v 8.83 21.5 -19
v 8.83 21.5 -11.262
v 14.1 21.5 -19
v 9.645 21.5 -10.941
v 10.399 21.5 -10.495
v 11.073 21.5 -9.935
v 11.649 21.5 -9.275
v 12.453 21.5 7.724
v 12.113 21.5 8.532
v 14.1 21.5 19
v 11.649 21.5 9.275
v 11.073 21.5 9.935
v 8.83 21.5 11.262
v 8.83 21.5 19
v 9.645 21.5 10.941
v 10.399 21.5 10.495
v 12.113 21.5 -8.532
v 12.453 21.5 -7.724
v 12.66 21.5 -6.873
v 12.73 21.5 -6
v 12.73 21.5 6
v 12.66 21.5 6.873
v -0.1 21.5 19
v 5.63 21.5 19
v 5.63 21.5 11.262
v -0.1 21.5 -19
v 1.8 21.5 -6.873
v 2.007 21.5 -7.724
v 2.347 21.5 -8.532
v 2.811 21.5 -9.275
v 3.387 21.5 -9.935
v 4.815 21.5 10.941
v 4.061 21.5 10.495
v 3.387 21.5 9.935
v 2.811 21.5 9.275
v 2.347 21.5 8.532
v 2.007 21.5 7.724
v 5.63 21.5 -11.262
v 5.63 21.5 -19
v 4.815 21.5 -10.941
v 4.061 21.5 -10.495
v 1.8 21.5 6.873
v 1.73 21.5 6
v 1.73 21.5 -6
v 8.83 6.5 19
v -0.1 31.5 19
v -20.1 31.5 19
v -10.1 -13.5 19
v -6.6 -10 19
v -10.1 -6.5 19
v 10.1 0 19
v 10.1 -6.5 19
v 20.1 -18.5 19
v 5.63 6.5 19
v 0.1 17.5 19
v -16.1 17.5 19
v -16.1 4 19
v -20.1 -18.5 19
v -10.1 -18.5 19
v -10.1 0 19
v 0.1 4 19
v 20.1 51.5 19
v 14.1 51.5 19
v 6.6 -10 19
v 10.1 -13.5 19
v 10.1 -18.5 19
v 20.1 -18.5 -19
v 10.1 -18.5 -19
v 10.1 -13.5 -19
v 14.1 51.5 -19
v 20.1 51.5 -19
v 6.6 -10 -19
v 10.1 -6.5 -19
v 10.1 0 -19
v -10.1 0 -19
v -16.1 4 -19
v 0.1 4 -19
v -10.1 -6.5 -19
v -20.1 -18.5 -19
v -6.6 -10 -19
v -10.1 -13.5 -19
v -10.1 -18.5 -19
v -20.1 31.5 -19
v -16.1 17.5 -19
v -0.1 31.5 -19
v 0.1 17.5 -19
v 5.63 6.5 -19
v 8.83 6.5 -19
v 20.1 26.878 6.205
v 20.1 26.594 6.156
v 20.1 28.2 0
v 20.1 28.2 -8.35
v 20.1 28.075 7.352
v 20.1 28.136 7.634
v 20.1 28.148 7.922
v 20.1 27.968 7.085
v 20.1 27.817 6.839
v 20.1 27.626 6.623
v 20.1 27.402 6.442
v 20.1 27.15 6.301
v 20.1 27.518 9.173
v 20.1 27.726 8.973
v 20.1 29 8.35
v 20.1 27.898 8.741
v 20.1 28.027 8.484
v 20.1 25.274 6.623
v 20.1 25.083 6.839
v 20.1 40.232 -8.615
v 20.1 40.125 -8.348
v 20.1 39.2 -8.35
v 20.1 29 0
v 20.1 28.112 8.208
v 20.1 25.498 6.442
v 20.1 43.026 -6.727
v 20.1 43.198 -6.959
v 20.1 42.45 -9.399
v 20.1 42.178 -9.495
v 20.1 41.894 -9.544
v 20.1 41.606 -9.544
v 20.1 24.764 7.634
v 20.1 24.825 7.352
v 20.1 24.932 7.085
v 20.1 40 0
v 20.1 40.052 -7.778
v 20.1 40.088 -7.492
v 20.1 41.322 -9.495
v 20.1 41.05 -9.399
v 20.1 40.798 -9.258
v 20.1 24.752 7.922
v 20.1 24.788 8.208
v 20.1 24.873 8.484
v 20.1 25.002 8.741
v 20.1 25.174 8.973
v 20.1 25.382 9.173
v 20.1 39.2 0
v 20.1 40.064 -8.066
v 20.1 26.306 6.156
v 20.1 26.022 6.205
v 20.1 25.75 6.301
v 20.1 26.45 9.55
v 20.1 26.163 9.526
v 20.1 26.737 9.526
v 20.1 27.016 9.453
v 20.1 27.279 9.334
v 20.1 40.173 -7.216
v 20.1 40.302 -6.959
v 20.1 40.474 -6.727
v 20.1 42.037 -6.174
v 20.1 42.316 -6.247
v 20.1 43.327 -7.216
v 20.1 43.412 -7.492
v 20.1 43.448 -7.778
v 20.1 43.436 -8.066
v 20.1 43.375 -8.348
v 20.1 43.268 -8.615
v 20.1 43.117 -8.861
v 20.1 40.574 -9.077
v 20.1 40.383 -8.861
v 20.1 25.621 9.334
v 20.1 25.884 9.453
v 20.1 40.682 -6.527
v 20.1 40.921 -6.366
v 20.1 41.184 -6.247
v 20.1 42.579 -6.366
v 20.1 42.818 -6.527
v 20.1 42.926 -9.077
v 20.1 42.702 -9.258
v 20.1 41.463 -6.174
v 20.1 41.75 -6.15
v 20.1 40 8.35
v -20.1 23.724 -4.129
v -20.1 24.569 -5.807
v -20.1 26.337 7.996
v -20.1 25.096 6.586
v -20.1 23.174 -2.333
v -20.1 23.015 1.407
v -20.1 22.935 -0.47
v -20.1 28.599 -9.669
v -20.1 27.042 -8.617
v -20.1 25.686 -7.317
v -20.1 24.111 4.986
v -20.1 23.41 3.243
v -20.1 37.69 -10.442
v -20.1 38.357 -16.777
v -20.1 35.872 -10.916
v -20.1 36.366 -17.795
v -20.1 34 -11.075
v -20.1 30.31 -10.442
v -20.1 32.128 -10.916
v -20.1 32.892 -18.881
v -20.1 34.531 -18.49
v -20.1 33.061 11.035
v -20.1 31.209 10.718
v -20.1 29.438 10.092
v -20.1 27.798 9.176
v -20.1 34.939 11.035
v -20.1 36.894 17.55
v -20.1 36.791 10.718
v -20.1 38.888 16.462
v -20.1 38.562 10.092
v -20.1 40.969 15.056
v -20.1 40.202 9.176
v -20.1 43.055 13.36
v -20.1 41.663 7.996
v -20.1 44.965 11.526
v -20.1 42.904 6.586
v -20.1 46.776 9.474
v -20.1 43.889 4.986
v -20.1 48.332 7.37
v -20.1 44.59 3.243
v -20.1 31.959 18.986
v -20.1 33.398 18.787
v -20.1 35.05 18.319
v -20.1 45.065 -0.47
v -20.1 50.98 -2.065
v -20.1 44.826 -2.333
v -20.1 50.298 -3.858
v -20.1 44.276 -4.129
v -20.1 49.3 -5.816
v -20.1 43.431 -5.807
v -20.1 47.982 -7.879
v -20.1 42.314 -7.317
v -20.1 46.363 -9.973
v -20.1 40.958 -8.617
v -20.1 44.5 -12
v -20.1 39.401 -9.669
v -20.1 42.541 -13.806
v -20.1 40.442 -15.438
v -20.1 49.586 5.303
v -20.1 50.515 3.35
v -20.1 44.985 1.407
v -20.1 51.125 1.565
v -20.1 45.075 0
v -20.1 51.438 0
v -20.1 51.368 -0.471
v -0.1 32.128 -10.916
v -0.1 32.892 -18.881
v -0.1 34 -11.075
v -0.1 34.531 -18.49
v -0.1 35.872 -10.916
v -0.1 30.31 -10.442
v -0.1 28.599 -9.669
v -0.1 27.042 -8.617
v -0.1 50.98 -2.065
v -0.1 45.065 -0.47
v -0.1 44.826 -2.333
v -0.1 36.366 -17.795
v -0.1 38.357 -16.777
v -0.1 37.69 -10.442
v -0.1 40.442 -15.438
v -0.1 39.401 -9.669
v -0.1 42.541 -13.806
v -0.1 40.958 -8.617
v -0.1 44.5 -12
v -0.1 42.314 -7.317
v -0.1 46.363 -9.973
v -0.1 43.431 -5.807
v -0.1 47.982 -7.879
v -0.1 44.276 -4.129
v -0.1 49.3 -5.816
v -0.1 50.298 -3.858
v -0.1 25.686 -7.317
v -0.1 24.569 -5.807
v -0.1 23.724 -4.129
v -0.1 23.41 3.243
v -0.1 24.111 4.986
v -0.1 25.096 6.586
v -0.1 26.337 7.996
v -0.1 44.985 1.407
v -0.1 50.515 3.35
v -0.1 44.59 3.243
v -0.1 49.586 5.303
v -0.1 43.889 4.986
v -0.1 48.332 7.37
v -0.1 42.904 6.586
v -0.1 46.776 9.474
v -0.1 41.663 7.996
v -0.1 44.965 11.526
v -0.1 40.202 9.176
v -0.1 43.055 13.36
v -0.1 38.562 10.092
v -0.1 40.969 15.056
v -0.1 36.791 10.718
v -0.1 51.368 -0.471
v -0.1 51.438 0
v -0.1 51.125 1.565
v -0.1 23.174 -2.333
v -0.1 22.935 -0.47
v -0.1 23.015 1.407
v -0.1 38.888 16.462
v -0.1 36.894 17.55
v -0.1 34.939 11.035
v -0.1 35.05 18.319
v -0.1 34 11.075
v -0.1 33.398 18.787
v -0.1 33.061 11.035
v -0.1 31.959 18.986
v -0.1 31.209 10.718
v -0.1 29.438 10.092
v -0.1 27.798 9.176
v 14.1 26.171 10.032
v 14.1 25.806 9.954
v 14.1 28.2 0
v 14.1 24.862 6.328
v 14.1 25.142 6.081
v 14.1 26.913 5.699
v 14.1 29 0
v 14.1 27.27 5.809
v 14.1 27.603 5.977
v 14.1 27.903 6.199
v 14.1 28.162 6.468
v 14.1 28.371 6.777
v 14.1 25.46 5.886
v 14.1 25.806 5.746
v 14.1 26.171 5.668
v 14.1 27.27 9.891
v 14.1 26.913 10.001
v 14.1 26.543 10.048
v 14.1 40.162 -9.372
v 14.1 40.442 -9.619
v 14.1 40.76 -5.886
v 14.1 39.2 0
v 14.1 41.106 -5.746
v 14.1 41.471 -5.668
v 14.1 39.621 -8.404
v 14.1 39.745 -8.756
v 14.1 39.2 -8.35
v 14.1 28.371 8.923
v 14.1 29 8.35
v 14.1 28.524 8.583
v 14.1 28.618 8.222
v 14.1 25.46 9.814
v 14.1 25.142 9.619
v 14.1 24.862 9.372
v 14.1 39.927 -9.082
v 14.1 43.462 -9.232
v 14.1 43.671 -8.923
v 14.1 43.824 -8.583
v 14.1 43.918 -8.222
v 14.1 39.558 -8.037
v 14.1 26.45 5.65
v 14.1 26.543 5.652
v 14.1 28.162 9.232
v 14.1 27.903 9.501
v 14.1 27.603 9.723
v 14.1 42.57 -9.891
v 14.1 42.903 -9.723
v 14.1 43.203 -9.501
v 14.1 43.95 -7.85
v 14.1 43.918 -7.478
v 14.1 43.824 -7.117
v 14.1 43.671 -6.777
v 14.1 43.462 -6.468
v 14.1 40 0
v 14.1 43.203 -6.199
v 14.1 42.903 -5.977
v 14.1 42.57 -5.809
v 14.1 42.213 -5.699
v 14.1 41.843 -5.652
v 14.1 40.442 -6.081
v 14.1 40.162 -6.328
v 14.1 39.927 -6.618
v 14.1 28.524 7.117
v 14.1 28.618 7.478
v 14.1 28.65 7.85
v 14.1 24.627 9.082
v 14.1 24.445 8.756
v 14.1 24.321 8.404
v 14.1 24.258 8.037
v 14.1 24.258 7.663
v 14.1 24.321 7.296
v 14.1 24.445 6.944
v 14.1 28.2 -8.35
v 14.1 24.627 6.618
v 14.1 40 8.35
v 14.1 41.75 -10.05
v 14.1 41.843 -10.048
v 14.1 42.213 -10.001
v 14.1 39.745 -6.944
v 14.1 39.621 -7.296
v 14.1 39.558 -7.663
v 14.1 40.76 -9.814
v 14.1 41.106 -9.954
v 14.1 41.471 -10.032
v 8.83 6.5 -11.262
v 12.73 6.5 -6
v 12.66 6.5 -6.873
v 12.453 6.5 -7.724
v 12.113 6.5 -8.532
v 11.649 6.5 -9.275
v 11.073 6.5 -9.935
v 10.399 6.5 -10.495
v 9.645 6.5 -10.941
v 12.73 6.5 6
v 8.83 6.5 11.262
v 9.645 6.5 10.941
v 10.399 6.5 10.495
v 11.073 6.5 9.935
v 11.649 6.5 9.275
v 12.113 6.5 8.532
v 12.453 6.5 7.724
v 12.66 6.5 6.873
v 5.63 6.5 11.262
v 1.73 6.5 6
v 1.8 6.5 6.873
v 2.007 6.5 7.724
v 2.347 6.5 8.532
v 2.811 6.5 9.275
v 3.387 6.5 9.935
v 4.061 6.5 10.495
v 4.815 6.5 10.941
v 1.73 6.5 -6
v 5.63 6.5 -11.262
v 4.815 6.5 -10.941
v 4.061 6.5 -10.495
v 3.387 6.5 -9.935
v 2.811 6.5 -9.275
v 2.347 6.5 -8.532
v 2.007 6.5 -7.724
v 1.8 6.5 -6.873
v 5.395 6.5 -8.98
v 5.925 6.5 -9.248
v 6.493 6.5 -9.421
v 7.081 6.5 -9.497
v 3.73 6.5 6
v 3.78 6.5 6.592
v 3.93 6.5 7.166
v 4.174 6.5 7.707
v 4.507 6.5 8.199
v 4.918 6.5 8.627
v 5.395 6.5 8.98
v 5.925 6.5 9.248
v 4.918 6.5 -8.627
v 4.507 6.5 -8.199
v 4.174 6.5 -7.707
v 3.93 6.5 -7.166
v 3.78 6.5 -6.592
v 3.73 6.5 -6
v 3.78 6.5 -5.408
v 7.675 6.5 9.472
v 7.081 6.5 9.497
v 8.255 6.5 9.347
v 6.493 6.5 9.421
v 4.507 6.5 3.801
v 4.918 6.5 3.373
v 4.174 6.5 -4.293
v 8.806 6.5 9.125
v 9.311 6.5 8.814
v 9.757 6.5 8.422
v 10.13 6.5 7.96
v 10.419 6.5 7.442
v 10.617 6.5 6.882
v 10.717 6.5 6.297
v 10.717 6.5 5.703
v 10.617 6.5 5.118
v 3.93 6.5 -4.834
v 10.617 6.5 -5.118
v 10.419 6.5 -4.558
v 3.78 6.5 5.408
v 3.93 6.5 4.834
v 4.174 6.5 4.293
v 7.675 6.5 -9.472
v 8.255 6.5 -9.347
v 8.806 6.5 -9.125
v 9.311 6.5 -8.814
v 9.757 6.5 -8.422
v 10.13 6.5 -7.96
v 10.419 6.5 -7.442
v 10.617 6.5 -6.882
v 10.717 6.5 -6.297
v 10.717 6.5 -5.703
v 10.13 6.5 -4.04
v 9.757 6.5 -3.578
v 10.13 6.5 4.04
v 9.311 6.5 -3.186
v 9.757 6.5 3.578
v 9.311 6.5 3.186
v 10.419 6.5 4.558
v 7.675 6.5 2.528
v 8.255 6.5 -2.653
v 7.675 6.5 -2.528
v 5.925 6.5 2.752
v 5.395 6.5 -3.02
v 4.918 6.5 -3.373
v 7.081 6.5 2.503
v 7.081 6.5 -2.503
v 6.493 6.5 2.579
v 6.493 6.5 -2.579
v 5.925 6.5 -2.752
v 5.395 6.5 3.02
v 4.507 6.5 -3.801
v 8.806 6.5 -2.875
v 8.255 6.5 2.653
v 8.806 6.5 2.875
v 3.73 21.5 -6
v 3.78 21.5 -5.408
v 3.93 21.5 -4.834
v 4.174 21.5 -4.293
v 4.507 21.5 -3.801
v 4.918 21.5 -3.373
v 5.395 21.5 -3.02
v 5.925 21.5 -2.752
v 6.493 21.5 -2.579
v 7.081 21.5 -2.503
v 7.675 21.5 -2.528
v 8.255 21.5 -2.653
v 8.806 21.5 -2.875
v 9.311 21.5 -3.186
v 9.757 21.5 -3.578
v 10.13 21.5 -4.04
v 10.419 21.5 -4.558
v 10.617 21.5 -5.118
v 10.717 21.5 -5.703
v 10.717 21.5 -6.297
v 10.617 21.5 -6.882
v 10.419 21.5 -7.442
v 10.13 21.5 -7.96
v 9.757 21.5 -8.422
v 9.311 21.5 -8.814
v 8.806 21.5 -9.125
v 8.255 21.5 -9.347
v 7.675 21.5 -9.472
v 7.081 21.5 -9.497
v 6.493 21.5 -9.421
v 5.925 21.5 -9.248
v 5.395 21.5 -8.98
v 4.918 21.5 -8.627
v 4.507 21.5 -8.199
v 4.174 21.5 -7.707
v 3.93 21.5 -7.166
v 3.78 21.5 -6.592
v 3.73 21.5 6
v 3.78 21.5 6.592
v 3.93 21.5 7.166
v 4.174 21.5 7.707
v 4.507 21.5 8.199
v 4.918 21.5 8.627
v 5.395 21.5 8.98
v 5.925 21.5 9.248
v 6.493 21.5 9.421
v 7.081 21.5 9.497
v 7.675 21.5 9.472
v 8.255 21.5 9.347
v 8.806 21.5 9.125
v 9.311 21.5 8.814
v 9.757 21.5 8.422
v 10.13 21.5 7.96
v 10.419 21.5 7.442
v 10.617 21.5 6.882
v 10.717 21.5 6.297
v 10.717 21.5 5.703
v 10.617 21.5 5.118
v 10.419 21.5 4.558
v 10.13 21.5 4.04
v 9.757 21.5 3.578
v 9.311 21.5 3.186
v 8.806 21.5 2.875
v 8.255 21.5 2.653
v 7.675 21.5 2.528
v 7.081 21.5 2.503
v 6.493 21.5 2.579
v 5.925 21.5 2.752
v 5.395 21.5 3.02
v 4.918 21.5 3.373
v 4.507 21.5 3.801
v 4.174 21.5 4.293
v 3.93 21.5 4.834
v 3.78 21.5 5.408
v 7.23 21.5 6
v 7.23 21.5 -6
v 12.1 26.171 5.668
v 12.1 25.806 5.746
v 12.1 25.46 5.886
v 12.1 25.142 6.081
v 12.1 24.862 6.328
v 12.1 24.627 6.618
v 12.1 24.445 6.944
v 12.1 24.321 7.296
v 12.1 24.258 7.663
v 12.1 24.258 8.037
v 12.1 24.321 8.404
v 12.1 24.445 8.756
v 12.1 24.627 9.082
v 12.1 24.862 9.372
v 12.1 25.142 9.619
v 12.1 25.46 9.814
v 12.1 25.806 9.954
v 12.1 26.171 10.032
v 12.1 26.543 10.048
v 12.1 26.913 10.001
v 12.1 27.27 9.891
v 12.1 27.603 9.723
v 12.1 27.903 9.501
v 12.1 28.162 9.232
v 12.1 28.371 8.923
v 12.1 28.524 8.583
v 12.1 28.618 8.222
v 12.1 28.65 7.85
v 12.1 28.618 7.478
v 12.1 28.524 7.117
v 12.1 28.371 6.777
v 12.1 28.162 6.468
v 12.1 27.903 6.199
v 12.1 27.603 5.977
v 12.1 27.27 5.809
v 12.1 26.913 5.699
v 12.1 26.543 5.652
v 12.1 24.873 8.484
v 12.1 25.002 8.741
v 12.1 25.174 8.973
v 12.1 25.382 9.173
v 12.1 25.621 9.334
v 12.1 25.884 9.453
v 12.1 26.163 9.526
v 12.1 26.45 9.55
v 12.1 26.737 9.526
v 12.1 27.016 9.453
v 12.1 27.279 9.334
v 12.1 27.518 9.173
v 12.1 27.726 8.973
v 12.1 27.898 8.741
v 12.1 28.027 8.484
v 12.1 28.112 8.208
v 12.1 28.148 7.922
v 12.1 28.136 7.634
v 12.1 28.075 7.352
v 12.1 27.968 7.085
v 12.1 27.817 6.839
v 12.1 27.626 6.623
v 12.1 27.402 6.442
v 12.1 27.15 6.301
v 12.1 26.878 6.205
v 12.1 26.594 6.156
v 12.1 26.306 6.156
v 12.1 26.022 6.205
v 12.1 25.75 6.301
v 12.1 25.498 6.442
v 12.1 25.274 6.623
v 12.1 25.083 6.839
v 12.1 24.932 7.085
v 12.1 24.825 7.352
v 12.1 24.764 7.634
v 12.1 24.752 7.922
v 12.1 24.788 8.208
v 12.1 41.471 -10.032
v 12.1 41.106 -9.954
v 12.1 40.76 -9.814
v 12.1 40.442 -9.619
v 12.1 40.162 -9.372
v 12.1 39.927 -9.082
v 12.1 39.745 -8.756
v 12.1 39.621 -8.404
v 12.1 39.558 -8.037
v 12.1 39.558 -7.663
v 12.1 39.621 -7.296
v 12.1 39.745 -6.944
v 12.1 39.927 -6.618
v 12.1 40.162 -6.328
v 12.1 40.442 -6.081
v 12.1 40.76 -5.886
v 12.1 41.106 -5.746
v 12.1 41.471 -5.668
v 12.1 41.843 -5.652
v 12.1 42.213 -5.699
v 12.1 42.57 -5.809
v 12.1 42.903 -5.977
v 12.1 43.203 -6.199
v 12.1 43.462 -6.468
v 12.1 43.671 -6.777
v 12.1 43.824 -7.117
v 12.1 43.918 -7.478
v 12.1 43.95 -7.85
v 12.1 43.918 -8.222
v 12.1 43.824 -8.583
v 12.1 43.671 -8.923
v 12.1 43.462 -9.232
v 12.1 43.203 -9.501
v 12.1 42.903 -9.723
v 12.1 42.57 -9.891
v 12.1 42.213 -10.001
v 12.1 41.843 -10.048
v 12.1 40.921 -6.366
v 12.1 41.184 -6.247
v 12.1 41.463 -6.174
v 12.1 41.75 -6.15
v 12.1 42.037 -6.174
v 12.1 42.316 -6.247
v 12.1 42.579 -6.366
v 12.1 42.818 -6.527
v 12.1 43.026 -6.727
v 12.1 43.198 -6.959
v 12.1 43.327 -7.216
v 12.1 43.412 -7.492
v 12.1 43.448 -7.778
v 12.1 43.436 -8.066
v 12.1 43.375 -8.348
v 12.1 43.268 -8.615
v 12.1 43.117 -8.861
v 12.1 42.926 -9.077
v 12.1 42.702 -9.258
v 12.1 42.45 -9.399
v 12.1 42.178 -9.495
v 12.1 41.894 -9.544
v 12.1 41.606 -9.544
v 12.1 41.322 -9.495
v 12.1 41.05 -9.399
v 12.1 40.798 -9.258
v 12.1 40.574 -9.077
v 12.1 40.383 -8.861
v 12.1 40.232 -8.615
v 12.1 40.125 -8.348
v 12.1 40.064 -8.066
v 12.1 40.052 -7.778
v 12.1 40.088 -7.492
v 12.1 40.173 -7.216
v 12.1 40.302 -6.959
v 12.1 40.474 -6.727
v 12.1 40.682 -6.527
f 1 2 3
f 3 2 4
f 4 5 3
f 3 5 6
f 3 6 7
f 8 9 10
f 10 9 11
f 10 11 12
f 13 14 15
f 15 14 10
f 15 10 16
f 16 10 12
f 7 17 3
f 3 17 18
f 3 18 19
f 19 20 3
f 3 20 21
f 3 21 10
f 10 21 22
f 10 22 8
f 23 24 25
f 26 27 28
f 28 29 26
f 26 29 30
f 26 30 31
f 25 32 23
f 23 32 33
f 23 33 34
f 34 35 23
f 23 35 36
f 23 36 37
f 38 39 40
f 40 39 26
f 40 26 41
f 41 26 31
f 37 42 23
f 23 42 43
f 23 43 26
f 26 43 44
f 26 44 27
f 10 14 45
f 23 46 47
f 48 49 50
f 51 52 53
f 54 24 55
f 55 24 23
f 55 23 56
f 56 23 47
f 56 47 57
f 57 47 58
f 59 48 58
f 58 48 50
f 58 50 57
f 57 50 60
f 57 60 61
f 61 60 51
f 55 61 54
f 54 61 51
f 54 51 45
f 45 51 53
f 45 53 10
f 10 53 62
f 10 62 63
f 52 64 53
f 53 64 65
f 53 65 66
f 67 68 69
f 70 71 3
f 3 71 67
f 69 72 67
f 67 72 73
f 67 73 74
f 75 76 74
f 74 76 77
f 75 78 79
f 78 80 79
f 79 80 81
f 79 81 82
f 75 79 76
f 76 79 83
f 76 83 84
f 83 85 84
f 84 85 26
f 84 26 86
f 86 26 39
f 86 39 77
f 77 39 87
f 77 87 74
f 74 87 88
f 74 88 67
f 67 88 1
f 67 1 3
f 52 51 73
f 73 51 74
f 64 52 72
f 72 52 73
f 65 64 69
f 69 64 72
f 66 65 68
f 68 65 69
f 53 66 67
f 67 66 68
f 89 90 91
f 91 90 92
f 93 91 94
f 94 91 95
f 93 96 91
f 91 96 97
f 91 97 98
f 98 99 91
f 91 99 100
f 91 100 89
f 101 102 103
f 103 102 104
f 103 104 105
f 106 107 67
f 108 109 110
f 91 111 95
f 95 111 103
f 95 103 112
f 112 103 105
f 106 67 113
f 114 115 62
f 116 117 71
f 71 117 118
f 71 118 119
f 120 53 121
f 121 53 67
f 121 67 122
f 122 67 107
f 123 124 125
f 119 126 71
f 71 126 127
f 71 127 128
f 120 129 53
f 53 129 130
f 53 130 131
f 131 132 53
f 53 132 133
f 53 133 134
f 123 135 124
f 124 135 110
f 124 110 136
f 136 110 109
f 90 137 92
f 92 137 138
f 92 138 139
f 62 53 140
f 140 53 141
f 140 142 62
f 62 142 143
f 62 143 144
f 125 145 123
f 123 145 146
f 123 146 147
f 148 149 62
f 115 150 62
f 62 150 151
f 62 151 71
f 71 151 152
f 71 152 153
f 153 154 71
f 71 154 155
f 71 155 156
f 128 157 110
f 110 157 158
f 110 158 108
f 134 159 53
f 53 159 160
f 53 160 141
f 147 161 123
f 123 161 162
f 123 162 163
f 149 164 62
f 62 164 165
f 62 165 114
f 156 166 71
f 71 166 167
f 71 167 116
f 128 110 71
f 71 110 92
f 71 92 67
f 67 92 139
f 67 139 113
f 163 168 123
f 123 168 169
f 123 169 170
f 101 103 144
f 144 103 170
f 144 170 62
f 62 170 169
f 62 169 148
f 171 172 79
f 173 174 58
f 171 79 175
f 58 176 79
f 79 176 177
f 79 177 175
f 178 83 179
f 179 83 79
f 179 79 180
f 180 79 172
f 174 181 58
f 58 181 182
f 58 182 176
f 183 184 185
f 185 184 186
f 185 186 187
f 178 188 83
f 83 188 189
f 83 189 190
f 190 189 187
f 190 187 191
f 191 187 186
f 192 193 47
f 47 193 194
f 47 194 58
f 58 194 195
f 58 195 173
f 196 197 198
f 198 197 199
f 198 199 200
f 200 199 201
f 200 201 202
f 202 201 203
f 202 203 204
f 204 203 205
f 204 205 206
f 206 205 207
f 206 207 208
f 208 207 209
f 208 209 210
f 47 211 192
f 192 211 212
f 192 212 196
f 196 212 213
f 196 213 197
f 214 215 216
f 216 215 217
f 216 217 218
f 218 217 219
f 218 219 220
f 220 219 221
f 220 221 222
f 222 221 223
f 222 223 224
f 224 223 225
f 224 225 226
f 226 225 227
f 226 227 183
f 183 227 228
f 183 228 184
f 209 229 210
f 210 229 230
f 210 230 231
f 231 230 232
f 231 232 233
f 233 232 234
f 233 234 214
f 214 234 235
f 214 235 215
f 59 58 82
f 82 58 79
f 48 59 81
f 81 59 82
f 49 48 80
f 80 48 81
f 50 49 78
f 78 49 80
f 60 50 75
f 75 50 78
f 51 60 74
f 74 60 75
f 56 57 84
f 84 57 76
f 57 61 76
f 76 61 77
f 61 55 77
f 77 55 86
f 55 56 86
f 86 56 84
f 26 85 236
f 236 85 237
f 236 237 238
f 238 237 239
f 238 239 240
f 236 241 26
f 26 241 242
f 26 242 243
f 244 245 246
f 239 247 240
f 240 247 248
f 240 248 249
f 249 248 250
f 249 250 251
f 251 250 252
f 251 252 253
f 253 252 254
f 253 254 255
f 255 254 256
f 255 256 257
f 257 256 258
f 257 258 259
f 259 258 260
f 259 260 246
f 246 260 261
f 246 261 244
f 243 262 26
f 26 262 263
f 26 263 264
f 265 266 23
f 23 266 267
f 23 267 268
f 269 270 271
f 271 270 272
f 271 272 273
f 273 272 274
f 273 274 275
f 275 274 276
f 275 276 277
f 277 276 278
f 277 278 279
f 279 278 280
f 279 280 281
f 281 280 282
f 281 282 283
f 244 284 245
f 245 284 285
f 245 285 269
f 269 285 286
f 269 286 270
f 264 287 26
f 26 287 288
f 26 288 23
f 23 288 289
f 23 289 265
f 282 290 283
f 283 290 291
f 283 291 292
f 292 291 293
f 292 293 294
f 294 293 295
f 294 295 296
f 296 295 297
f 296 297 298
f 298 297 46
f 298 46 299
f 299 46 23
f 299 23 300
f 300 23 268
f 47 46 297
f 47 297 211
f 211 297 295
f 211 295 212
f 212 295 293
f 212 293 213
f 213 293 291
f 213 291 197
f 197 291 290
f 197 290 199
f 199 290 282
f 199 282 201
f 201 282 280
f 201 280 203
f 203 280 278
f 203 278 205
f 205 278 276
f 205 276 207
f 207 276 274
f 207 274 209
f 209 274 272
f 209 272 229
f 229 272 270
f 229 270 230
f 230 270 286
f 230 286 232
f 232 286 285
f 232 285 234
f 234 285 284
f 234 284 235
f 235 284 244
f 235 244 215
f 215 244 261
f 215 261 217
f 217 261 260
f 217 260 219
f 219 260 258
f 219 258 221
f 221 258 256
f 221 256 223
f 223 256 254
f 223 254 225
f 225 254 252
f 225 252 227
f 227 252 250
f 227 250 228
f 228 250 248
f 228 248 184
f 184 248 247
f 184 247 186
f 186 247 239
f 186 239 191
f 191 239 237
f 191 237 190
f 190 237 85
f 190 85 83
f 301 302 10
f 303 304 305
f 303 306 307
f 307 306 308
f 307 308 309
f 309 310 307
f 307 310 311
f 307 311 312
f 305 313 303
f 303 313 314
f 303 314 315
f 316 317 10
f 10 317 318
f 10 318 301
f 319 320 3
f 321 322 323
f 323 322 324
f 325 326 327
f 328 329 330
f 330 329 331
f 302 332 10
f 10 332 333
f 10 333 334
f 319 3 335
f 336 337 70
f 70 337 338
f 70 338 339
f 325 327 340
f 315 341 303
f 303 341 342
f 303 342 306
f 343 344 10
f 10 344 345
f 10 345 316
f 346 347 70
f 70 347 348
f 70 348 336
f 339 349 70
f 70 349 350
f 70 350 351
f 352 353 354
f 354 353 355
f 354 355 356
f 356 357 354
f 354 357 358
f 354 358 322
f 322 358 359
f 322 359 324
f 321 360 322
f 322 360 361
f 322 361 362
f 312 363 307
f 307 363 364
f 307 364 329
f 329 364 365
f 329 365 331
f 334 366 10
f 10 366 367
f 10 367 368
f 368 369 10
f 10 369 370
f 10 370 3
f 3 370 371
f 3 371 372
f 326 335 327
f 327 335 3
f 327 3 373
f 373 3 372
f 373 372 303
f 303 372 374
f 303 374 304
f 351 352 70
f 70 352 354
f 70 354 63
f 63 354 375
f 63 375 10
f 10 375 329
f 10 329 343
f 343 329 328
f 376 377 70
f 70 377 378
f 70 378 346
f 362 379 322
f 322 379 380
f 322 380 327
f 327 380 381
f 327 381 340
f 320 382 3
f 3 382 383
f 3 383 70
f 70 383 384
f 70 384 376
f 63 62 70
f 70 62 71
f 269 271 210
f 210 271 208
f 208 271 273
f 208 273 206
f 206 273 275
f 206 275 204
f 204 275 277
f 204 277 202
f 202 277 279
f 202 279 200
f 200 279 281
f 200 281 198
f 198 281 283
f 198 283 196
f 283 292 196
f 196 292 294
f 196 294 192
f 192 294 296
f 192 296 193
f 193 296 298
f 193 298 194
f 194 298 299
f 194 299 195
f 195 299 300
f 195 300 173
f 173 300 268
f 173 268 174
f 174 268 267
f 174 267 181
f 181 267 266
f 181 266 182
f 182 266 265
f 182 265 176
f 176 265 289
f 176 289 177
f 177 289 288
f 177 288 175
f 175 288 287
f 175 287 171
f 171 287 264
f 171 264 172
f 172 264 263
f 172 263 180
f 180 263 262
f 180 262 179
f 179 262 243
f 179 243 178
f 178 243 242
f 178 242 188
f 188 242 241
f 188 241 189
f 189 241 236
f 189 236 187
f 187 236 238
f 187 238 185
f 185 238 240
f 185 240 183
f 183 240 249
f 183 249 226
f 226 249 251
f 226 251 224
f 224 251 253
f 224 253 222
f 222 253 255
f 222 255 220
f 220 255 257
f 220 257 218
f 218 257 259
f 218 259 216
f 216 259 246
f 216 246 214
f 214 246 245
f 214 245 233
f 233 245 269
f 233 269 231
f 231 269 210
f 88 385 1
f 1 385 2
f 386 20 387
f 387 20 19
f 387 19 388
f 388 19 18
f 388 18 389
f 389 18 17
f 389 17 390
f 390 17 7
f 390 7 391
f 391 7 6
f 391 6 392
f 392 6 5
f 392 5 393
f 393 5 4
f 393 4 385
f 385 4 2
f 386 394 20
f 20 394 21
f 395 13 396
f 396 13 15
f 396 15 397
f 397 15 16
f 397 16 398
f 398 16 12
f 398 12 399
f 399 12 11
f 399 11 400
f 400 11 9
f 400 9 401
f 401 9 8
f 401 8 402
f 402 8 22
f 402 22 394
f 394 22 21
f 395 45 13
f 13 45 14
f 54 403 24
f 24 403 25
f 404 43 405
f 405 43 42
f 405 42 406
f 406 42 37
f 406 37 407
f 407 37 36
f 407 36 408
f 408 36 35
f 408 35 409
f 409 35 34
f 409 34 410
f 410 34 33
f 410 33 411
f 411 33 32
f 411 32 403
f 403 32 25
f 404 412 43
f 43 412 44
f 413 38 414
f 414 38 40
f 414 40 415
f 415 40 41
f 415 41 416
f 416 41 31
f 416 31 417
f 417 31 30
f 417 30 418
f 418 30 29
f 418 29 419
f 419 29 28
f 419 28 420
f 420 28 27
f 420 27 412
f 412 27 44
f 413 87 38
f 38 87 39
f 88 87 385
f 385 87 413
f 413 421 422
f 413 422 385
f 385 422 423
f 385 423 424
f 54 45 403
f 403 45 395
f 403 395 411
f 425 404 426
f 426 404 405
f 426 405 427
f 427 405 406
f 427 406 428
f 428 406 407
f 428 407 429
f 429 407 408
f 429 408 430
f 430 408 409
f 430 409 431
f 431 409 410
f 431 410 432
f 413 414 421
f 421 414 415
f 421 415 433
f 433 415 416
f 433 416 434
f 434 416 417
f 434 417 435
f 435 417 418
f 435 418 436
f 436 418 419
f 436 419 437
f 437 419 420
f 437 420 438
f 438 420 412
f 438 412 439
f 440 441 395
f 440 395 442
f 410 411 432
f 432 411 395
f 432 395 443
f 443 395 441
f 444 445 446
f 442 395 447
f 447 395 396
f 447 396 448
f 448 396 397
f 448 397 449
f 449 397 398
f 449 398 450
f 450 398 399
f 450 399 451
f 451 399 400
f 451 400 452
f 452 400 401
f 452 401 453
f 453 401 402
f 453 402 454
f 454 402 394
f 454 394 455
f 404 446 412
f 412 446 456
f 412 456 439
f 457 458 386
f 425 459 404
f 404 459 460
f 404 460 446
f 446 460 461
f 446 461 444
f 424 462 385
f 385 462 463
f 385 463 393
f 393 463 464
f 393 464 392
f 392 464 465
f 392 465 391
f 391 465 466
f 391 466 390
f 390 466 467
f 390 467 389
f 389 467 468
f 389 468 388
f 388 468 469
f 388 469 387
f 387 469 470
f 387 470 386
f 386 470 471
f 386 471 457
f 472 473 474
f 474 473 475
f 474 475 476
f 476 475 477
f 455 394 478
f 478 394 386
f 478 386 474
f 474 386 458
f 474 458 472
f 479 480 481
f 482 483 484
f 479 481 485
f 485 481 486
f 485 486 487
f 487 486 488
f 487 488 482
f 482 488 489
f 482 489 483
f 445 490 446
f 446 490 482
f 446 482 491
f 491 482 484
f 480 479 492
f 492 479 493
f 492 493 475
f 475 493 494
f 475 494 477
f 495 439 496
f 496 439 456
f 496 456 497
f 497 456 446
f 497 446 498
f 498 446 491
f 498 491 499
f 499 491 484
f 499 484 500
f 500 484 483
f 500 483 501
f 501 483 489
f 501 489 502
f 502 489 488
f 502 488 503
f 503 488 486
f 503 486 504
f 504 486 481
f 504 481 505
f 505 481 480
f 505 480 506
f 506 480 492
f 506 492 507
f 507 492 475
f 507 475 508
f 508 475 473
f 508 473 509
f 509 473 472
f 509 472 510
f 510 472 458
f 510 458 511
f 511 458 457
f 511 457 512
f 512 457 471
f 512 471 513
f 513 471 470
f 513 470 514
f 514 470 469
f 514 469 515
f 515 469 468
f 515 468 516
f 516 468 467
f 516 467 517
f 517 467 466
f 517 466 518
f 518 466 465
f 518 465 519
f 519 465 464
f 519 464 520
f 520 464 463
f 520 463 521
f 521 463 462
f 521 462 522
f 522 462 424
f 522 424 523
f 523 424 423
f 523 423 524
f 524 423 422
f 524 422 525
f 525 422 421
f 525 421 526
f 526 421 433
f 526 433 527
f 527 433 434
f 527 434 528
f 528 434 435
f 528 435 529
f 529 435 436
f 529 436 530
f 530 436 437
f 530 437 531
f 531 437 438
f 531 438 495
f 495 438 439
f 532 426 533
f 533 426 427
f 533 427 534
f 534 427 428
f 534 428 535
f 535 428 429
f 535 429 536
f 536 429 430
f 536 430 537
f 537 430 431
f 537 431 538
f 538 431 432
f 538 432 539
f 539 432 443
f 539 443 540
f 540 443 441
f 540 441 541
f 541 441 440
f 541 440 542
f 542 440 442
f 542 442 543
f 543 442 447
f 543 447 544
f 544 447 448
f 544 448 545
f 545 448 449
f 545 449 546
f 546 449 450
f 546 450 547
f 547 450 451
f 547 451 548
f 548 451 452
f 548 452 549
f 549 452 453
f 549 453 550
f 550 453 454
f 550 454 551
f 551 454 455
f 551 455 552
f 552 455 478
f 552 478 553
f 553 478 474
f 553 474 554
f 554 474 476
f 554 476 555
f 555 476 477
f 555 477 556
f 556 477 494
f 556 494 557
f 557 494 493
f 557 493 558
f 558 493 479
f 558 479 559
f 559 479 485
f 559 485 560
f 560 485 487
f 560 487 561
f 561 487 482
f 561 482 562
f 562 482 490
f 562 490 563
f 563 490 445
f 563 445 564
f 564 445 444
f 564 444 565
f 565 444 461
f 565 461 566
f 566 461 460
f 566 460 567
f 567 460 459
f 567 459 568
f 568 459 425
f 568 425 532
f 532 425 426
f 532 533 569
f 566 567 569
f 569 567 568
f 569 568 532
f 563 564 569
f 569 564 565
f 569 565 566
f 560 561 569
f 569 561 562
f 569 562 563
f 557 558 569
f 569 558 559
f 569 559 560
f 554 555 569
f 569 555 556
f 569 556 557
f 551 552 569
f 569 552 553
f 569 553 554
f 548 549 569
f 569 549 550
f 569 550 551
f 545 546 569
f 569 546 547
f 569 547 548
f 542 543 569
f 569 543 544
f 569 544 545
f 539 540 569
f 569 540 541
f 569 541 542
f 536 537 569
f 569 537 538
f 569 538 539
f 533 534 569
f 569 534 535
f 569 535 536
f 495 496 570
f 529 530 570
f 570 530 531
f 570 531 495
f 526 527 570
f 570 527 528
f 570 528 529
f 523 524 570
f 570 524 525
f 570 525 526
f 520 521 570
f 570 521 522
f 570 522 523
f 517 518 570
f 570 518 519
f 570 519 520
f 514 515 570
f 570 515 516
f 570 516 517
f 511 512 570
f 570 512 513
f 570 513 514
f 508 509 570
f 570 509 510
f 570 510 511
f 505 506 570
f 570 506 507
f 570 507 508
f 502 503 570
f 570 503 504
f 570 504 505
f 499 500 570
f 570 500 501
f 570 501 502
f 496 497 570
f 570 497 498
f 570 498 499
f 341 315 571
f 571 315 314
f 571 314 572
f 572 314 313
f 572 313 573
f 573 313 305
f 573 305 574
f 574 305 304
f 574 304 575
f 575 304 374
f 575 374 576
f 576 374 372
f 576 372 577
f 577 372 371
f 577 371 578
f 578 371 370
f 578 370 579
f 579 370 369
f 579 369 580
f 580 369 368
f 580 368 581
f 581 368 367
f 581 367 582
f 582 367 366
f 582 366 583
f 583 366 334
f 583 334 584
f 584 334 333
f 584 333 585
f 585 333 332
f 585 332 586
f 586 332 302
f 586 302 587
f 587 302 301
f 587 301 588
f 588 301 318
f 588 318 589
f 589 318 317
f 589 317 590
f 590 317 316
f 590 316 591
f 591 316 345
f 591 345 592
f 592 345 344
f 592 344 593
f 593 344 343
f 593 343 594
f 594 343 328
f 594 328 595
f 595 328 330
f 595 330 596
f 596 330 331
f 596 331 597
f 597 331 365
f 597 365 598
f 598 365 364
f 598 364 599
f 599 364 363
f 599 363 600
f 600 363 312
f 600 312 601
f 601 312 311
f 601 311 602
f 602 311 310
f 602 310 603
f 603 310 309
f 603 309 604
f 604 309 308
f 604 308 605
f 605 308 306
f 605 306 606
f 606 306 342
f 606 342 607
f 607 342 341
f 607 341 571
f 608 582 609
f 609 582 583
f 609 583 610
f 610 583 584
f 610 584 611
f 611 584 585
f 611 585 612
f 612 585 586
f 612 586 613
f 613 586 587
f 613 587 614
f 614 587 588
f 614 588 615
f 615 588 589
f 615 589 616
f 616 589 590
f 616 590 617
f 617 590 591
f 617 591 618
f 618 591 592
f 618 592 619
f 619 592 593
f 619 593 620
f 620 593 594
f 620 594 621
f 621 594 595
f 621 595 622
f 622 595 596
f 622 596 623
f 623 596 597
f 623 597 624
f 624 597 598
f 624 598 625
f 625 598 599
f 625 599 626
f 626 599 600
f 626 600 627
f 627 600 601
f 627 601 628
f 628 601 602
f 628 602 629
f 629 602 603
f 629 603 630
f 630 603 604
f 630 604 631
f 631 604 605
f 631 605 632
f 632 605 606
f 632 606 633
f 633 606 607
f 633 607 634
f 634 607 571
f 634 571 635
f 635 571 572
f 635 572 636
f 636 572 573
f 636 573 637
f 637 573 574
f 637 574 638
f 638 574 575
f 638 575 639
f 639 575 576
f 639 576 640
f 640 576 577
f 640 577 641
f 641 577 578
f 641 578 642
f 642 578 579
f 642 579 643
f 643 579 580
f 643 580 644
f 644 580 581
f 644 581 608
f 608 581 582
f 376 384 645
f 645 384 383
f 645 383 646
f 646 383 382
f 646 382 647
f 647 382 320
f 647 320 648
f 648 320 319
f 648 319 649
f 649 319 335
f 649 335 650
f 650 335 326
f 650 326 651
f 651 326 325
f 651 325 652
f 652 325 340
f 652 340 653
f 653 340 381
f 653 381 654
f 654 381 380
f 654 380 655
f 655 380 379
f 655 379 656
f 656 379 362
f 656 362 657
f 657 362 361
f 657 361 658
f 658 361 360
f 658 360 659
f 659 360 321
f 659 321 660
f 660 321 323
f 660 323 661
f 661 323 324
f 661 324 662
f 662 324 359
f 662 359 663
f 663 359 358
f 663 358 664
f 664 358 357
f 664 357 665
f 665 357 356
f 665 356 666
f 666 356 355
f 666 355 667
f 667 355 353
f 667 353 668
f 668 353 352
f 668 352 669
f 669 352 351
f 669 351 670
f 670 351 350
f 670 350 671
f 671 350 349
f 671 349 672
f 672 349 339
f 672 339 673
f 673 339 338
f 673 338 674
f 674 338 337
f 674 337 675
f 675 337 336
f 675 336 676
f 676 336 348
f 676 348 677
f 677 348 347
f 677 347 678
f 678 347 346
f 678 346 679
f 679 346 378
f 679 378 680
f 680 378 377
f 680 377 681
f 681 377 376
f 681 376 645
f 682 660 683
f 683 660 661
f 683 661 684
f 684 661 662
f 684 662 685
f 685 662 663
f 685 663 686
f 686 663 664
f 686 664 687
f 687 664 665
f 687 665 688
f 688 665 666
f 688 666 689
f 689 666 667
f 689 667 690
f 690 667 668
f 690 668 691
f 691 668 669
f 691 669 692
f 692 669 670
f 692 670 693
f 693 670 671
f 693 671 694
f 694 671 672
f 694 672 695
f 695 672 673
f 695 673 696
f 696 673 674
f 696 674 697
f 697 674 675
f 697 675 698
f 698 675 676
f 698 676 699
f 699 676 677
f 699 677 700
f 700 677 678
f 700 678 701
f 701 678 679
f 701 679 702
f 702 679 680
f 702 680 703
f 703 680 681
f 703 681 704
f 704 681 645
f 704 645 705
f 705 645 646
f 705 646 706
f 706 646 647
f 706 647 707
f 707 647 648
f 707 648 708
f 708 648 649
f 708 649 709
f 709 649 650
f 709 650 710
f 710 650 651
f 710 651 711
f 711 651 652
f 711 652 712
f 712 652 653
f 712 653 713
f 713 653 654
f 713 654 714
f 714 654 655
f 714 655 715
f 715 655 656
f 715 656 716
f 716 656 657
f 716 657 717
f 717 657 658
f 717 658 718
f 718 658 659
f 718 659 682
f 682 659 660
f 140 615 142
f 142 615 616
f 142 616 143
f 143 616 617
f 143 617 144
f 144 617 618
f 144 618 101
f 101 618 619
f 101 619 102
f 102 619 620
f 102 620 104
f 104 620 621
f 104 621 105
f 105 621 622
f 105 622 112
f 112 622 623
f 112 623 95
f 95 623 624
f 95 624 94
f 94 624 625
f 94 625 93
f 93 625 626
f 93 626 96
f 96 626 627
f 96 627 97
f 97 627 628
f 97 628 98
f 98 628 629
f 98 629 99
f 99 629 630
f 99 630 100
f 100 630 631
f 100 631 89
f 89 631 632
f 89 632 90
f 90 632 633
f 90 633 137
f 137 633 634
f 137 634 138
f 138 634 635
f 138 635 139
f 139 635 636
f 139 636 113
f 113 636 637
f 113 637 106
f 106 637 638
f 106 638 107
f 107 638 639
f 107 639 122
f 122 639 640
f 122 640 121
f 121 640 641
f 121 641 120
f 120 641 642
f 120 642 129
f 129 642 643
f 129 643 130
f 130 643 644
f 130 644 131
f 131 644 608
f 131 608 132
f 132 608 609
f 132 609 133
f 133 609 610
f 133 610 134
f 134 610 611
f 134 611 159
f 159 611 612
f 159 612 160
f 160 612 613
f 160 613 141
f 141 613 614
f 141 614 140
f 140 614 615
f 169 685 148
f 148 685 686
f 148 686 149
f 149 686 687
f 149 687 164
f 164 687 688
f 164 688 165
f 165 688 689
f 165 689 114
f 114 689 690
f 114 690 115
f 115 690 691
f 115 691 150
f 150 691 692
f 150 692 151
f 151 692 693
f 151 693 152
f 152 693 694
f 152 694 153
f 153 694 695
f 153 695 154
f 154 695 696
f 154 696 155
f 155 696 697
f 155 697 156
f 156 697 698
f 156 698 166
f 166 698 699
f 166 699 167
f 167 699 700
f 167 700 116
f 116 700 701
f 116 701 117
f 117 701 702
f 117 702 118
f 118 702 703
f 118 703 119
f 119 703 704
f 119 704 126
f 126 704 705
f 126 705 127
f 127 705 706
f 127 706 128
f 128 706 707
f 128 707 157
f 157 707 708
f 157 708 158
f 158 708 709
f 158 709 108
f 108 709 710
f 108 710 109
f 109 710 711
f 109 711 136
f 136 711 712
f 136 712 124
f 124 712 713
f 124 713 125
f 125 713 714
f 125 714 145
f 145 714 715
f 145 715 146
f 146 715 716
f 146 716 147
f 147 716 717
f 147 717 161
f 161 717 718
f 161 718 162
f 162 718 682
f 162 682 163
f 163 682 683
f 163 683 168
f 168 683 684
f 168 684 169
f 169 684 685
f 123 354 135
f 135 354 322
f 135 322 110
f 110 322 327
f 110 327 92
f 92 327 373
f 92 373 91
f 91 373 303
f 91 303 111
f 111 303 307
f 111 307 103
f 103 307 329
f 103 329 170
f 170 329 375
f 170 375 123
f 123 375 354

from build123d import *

# Parameters (mm, degrees)
SKETCH1_W                = 16.2
SKETCH1_H                = 13.5
BOSS_EXTRUDE1_DEPTH      = 19
SKETCH2_W                = 20
SKETCH2_H                = 38
BOSS_EXTRUDE2_DEPTH      = 30
FILLET2_SIZE             = 20
SKETCH7_W                = 6
SKETCH7_H                = 38
BOSS_EXTRUDE6_DEPTH      = 30
CUT_EXTRUDE1_DEPTH       = 69.038885968
CUT_EXTRUDE1_DEPTH_BACK  = 31
SKETCH3_R                = 11.075
SKETCH5_W                = 2.5
SKETCH5_H                = 38
BOSS_EXTRUDE3_DEPTH      = 30
SKETCH11_R               = 3.5
CUT_EXTRUDE5_DEPTH       = 15
SKETCH9_R                = 2.2
BOSS_EXTRUDE7_DEPTH      = 8
M3_CLEARANCE_HOLE3_D     = 3.4
M3_CLEARANCE_HOLE3_DEPTH = 8
CUT_EXTRUDE6_DEPTH       = 10


with BuildPart() as part:
    # Sketch1 → Boss-Extrude1 (new, symmetric)
    with BuildSketch(Plane.XY):
        Polygon((-10.1, 0), (10.1, 0), (10.1, -6.5), (6.6, -10), (10.1, -13.5), (10.1, -18.5), (20.1, -18.5), (20.1, 21.5), (-20.1, 21.5), (-20.1, -18.5), (-10.1, -18.5), (-10.1, -13.5), (-6.6, -10), (-10.1, -6.5), align=None)
        with Locations((-8, 10.75)):
            Rectangle(SKETCH1_W, SKETCH1_H, mode=Mode.SUBTRACT)
    extrude(amount=BOSS_EXTRUDE1_DEPTH, both=True)

    # Sketch2 → Boss-Extrude2 (add)
    with BuildSketch(Plane(origin=(0, 21.5, 0), x_dir=(1, 0, 0), z_dir=(0, 1, 0))):
        with Locations((-10.1, 0)):
            Rectangle(SKETCH2_W, SKETCH2_H)
    extrude(amount=BOSS_EXTRUDE2_DEPTH)

    # Fillet2
    # a fillet whose section is not a circle: 20 mm, written as the material it takes off along each edge
    with BuildSketch(Plane(origin=(-70.1, 51.5, -19), x_dir=(0, 0, 1), z_dir=(1, 0, 0)), Plane(origin=(49.9, 51.5, 19), x_dir=(0, 0, -1), z_dir=(-1, 0, 0))) as fillet2_piece_1:
        with BuildLine():
            Bezier((FILLET2_SIZE, 0), (0, 0), (0, FILLET2_SIZE), weights=[1, 0.428571429, 1])
            Line((0, FILLET2_SIZE), (0, 0))
            Line((0, 0), (FILLET2_SIZE, 0))
        make_face()
    extrude(amount=120, mode=Mode.SUBTRACT)

    # Sketch7 → Boss-Extrude6 (add)
    with BuildSketch(Plane(origin=(0, 21.5, 0), x_dir=(1, 0, 0), z_dir=(0, 1, 0))):
        with Locations((17.1, 0)):
            Rectangle(SKETCH7_W, SKETCH7_H)
    extrude(amount=BOSS_EXTRUDE6_DEPTH)

    # Sketch3 → Cut-Extrude1 (cut, two sides: drawn at the far end of the back side and taken through both)
    with BuildSketch(Plane.ZY.offset(20.1).offset(-CUT_EXTRUDE1_DEPTH_BACK)):
        with Locations(Location((0, 34, 0), (0, 0, 90))):
            Circle(SKETCH3_R)
    extrude(amount=CUT_EXTRUDE1_DEPTH + CUT_EXTRUDE1_DEPTH_BACK, mode=Mode.SUBTRACT)

    # Sketch5 → Boss-Extrude3 (add)
    with BuildSketch(Plane(origin=(0, 21.5, 0), x_dir=(1, 0, 0), z_dir=(0, 1, 0))):
        with Locations((18.85, 0)):
            Rectangle(SKETCH5_W, SKETCH5_H)
    extrude(amount=BOSS_EXTRUDE3_DEPTH)

    # Sketch11 → Cut-Extrude5 (cut)
    with BuildSketch(Plane(origin=(0, 21.5, 0), x_dir=(1, 0, 0), z_dir=(0, 1, 0))):
        with BuildLine():
            Line((5.63, -11.262128847), (5.63, -19))
            Line((5.63, -19), (8.83, -19))
            Line((8.83, -19), (8.83, -11.262128847))
            ThreePointArc((8.83, -11.262128847), (11.648710219, -9.274904579), (12.73, -6))
            Line((12.73, -6), (12.73, 6))
            ThreePointArc((12.73, 6), (11.648710219, 9.274904579), (8.83, 11.262128847))
            Line((8.83, 11.262128847), (8.83, 19))
            Line((8.83, 19), (5.63, 19))
            Line((5.63, 19), (5.63, 11.262128847))
            ThreePointArc((5.63, 11.262128847), (2.811289781, 9.274904579), (1.73, 6))
            Line((1.73, 6), (1.73, -6))
            ThreePointArc((1.73, -6), (2.811289781, -9.274904579), (5.63, -11.262128847))
        make_face()
        with Locations(Location((7.23, 6, 0), (0, 0, 180))):
            Circle(SKETCH11_R, mode=Mode.SUBTRACT)
        with Locations(Location((7.23, -6, 0), (0, 0, 180))):
            Circle(SKETCH11_R, mode=Mode.SUBTRACT)
    extrude(amount=-CUT_EXTRUDE5_DEPTH, mode=Mode.SUBTRACT)

    # Sketch9 → Boss-Extrude7 (add)
    with BuildSketch(Plane(origin=(20.1, 0, 0), x_dir=(0, 0, -1), z_dir=(1, 0, 0))):
        with Locations(Location((7.85, 41.75, 0), (0, 0, 90))):
            Circle(SKETCH9_R)
        with Locations(Location((-7.85, 26.45, 0), (0, 0, 90))):
            Circle(SKETCH9_R)
    extrude(amount=-BOSS_EXTRUDE7_DEPTH)

    # M3 Clearance Hole3
    with Locations(Plane(origin=(12.1, 41.75, -7.85), x_dir=(0, -1, 0), z_dir=(-1, 0, 0))):
        with Locations((0, 0), (15.3, 15.7)):
            Hole(M3_CLEARANCE_HOLE3_D / 2, depth=M3_CLEARANCE_HOLE3_DEPTH)

    # Sketch19 → Cut-Extrude6 (cut)
    with BuildSketch(Plane(origin=(20.1, 0, 0), x_dir=(0, 0, -1), z_dir=(1, 0, 0))):
        Polygon((0, 39.2), (8.35, 39.2), (8.35, 28.2), (0, 28.2), (0, 29), (-8.35, 29), (-8.35, 40), (0, 40), align=None)
    extrude(amount=-CUT_EXTRUDE6_DEPTH, mode=Mode.SUBTRACT)


solid = part.part
